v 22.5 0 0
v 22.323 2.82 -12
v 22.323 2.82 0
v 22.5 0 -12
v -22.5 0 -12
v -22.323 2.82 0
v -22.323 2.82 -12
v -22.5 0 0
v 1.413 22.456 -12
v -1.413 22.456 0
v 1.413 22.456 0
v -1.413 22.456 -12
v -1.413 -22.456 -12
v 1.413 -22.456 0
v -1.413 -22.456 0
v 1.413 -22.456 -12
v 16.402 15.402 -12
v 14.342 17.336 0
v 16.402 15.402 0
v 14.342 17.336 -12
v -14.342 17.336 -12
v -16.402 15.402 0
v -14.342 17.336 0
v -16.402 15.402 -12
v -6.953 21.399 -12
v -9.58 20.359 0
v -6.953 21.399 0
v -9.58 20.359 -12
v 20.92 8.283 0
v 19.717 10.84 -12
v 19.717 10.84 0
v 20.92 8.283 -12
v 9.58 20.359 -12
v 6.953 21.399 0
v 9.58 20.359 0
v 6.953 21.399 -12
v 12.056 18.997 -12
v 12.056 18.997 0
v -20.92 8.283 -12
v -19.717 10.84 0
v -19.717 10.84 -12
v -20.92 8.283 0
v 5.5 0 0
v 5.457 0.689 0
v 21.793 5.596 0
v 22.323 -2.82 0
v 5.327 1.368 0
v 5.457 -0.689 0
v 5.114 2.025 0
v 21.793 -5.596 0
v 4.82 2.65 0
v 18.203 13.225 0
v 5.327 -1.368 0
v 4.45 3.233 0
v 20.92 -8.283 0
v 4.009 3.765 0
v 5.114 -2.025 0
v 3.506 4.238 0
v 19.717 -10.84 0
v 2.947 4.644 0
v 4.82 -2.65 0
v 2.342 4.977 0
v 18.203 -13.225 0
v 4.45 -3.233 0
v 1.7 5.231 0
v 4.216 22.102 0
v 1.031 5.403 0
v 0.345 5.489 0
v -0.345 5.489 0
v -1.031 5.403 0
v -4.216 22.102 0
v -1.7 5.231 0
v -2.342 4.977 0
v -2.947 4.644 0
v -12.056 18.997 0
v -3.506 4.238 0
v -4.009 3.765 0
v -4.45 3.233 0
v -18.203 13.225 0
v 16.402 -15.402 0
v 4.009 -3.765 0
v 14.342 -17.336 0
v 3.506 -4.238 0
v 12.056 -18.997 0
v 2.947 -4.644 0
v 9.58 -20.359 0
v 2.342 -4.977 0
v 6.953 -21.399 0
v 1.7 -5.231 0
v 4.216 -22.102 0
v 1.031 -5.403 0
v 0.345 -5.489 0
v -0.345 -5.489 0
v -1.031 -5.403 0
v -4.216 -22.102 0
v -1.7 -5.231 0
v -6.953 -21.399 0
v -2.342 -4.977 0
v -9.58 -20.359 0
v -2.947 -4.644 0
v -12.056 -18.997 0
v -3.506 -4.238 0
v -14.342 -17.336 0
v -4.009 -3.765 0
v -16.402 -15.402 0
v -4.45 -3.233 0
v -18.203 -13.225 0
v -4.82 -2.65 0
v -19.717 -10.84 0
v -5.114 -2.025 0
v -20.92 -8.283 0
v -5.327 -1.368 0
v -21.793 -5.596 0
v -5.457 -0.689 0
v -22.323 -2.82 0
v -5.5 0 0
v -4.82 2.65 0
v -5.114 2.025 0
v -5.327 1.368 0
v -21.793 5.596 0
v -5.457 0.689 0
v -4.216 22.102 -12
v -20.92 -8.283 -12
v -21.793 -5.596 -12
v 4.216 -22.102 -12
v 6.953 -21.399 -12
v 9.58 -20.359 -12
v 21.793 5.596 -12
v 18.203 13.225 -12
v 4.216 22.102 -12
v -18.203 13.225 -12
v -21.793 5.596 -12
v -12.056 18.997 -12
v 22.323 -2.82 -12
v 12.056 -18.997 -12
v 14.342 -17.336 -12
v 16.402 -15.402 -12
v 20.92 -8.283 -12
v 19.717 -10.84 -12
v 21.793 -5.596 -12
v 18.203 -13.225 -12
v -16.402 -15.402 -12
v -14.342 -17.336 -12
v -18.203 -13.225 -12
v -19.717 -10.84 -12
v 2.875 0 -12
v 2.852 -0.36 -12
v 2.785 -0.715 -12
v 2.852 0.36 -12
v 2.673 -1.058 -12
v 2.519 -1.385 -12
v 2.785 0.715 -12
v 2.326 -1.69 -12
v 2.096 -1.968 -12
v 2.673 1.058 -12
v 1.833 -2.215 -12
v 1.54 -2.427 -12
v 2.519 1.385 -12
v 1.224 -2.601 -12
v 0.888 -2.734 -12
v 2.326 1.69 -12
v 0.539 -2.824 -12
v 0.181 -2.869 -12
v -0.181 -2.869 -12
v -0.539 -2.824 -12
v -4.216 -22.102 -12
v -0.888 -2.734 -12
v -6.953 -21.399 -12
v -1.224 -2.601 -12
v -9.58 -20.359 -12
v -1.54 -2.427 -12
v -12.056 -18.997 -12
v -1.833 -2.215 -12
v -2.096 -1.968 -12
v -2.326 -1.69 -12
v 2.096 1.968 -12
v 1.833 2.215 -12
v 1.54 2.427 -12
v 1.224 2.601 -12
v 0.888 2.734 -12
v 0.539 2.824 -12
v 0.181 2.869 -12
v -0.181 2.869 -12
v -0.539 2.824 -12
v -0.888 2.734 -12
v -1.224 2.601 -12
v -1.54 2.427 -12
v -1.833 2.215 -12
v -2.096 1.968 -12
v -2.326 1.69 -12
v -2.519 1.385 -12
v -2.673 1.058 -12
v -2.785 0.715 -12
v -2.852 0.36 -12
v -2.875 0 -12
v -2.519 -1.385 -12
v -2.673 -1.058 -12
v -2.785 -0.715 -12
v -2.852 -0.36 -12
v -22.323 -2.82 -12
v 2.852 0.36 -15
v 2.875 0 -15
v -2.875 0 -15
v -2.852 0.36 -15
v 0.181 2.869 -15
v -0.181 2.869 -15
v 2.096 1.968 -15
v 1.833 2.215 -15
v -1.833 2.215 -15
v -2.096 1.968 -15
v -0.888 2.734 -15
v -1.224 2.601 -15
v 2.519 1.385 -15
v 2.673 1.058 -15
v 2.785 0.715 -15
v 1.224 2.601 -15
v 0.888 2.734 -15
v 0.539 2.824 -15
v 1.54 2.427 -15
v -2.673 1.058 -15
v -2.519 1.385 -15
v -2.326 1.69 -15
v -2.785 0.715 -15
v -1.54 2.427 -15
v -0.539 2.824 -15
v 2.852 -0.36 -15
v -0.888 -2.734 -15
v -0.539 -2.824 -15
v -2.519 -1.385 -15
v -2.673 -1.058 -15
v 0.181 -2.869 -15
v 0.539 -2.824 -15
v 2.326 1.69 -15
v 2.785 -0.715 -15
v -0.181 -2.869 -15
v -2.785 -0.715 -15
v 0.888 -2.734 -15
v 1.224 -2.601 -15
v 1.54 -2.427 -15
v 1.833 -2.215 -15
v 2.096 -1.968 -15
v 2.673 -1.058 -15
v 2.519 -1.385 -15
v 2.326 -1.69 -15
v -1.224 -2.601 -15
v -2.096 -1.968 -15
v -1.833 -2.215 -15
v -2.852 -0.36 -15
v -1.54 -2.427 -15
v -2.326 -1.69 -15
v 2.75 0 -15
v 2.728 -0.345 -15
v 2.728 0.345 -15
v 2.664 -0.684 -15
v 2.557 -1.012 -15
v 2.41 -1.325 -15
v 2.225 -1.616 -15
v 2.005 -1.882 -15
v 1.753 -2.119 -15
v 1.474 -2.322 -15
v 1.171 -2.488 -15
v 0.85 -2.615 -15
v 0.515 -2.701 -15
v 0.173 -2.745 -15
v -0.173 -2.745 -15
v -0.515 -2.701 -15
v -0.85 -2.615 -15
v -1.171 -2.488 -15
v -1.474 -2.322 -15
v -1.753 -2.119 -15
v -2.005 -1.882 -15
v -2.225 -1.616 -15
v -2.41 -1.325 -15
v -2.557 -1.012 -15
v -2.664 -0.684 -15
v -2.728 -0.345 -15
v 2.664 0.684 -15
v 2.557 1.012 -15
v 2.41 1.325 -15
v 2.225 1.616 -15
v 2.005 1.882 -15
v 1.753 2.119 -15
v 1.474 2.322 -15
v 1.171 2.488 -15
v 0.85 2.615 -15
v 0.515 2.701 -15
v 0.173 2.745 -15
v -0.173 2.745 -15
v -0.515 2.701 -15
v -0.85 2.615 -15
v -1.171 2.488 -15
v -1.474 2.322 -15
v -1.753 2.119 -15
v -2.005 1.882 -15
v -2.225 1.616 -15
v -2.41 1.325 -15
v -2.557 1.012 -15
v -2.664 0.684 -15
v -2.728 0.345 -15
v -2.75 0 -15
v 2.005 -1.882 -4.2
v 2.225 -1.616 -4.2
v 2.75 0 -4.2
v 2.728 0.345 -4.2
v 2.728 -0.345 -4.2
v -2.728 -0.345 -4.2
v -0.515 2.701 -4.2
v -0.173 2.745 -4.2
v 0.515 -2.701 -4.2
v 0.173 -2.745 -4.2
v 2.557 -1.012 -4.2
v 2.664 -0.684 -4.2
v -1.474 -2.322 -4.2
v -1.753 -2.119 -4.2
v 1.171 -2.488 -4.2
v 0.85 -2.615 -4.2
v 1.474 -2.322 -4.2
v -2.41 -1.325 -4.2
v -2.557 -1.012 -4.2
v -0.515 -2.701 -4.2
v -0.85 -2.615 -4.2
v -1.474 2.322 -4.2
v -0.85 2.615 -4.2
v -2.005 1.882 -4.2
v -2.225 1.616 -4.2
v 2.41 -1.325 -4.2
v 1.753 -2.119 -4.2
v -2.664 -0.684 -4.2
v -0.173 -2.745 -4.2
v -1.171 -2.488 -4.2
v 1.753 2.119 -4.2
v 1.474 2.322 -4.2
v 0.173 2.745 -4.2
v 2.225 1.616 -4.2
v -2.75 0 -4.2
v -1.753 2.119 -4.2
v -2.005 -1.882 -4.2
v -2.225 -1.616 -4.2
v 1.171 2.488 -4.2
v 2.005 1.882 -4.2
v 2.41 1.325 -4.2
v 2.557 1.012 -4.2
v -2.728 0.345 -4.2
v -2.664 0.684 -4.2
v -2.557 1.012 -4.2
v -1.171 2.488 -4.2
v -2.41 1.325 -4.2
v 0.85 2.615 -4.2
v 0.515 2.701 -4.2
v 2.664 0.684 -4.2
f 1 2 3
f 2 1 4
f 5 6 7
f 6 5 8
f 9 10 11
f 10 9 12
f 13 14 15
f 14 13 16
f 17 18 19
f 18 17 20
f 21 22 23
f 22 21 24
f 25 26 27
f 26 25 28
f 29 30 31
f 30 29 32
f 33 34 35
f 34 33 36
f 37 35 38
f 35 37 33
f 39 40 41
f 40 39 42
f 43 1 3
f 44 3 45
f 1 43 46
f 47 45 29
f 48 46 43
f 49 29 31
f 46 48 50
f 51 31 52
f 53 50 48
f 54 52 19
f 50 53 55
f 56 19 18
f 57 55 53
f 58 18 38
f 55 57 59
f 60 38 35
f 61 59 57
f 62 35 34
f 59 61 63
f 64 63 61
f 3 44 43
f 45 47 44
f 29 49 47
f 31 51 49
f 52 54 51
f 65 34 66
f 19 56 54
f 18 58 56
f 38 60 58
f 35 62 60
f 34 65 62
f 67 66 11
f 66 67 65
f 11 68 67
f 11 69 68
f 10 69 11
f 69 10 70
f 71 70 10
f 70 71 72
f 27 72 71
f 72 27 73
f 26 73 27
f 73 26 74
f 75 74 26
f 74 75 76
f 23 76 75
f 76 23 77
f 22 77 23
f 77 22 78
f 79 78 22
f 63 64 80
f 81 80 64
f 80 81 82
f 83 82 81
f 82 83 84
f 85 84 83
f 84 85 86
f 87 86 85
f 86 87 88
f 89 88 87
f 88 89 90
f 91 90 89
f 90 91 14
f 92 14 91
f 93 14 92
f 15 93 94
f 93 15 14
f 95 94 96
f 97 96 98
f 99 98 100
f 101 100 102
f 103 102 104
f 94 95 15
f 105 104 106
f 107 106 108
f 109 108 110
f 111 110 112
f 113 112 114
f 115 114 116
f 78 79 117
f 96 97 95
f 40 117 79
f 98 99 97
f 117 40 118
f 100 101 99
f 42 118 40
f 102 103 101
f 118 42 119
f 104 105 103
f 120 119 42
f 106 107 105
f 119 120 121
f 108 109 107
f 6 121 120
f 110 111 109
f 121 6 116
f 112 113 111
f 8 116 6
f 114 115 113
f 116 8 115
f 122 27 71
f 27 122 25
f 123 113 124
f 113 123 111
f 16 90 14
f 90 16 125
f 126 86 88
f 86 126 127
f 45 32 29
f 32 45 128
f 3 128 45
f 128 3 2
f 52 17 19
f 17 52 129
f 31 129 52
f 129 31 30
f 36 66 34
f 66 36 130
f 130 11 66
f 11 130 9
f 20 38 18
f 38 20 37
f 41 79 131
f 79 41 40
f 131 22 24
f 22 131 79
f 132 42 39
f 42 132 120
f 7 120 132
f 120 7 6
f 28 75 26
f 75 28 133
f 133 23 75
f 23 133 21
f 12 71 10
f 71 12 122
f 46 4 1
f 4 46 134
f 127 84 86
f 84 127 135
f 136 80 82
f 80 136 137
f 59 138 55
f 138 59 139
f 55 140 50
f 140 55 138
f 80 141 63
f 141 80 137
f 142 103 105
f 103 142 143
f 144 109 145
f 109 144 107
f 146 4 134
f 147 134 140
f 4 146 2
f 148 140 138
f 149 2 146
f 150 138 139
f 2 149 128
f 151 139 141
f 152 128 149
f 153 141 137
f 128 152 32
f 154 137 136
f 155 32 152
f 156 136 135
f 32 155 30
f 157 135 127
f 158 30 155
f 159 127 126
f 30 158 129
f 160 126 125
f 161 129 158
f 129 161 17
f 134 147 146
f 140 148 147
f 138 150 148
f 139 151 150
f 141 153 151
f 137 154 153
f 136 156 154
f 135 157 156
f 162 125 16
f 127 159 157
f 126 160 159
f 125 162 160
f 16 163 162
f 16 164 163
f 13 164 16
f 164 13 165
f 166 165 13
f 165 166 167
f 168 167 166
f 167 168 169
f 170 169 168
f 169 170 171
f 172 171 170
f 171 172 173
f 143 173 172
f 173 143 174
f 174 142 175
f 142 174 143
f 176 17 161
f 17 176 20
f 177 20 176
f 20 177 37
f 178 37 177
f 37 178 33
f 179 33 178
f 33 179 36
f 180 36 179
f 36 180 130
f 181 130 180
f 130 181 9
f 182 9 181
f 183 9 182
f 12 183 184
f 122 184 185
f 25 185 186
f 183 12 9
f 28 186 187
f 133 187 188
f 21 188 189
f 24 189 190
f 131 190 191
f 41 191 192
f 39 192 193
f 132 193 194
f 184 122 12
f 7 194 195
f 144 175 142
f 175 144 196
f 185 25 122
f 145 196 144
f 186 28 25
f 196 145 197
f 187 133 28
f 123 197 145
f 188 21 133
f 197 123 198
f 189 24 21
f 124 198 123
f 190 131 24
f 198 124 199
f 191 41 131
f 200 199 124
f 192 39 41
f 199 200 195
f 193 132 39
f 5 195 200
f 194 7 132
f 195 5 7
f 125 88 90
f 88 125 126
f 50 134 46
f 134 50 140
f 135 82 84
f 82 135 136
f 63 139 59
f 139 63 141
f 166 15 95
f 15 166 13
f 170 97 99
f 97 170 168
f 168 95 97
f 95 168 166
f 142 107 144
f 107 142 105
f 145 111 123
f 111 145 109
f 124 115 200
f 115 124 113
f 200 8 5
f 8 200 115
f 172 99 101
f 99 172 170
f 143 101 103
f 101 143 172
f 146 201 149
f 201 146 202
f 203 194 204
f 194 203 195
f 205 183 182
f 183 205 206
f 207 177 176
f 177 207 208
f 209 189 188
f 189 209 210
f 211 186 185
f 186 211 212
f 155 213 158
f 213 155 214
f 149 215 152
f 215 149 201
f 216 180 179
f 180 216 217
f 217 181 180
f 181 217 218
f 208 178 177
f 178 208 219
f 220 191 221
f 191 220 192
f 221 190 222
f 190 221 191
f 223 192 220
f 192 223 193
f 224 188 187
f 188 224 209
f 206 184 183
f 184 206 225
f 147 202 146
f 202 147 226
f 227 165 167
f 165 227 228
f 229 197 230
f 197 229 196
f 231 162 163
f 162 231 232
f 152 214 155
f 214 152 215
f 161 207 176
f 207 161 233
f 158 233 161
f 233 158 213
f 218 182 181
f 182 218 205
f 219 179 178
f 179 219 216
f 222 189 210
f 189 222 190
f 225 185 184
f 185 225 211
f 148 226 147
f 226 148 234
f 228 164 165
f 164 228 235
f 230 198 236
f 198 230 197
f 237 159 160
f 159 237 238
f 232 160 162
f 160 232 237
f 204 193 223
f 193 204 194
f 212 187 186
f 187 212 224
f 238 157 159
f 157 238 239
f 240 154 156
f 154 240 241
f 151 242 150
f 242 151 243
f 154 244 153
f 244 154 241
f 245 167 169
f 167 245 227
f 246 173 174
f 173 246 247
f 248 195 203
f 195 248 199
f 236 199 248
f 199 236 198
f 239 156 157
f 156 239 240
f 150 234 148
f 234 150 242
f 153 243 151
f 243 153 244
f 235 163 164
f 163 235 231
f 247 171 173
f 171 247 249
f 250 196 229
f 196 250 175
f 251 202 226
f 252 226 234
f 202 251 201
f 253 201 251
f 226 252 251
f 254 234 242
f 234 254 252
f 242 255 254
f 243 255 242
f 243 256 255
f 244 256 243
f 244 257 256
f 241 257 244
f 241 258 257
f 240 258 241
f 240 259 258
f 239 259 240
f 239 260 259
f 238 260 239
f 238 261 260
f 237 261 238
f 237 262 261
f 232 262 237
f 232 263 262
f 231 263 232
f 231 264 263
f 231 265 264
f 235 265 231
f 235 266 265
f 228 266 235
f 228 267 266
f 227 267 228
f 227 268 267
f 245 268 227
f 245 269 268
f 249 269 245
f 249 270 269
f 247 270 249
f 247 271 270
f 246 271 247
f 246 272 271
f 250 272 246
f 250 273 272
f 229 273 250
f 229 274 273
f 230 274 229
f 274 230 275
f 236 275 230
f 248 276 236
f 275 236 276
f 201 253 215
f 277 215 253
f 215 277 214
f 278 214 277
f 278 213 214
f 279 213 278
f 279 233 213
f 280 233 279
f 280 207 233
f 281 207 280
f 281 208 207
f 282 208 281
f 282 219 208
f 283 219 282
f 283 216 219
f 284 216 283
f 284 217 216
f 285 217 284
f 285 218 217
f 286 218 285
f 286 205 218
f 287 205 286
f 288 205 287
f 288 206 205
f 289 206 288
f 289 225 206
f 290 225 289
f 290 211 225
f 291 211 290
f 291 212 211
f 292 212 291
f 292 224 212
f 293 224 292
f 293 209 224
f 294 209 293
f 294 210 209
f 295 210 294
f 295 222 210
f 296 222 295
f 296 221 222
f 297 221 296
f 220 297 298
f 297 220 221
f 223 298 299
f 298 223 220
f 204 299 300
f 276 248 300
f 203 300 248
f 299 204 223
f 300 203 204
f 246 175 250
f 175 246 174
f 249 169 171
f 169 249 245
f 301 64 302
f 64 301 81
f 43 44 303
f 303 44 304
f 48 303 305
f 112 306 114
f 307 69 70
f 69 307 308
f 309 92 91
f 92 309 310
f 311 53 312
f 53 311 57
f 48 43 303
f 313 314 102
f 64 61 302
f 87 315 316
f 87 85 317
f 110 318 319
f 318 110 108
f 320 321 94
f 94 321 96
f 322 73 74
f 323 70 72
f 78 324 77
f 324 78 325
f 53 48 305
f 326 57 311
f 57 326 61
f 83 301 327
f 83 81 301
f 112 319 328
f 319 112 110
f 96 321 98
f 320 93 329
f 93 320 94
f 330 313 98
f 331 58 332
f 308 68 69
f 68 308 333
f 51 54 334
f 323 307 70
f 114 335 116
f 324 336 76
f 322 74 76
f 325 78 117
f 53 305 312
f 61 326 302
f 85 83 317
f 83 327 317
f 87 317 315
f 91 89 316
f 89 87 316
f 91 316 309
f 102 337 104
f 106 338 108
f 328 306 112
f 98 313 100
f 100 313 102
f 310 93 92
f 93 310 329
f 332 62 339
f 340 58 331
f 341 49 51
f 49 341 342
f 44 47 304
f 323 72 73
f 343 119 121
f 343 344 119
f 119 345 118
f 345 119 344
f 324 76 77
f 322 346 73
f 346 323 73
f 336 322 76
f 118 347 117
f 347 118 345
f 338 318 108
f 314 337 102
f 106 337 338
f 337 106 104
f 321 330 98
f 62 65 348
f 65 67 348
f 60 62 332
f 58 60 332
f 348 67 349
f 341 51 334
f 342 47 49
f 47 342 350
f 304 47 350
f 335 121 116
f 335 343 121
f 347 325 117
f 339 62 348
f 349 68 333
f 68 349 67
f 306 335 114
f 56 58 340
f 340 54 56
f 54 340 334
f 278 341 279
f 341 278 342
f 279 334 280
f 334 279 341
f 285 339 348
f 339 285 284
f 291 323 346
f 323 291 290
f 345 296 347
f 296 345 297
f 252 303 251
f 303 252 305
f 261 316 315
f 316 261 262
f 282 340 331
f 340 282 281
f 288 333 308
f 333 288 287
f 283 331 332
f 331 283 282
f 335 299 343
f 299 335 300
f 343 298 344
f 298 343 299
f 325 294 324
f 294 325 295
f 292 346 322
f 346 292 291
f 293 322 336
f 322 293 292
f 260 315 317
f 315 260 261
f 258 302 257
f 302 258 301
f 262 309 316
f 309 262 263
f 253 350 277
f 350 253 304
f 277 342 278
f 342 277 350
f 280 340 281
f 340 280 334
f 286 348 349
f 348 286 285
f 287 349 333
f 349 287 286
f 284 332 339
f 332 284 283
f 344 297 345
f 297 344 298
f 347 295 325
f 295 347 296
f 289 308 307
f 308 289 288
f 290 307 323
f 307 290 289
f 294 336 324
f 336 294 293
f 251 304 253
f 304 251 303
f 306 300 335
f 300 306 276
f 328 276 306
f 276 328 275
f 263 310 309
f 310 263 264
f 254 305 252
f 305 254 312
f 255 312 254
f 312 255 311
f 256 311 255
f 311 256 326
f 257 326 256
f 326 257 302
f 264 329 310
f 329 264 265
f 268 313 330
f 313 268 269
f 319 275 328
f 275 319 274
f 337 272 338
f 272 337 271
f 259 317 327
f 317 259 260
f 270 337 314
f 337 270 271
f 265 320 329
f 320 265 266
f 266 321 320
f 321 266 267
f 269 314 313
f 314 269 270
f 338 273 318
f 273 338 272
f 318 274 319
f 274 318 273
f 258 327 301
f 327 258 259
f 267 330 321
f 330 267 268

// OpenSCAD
$fn = 50;


difference() {
	union() {
		translate(v = [0, 0, -12.0000000000]) {
			cylinder(h = 12, r = 22.5000000000);
		}
		translate(v = [0, 0, -15.0000000000]) {
			cylinder(h = 15, r = 2.8750000000);
		}
	}
	union() {
		translate(v = [0, 0, 0]) {
			rotate(a = [0, 0, 0]) {
				difference() {
					union() {
						translate(v = [0, 0, -15.0000000000]) {
							cylinder(h = 15, r = 2.2500000000);
						}
						translate(v = [0, 0, -4.2000000000]) {
							cylinder(h = 4.2000000000, r1 = 2.7500000000, r2 = 5.5000000000);
						}
						translate(v = [0, 0, -15.0000000000]) {
							cylinder(h = 15, r = 2.7500000000);
						}
						translate(v = [0, 0, -15.0000000000]) {
							cylinder(h = 15, r = 2.2500000000);
						}
					}
					union();
				}
			}
		}
	}
}
